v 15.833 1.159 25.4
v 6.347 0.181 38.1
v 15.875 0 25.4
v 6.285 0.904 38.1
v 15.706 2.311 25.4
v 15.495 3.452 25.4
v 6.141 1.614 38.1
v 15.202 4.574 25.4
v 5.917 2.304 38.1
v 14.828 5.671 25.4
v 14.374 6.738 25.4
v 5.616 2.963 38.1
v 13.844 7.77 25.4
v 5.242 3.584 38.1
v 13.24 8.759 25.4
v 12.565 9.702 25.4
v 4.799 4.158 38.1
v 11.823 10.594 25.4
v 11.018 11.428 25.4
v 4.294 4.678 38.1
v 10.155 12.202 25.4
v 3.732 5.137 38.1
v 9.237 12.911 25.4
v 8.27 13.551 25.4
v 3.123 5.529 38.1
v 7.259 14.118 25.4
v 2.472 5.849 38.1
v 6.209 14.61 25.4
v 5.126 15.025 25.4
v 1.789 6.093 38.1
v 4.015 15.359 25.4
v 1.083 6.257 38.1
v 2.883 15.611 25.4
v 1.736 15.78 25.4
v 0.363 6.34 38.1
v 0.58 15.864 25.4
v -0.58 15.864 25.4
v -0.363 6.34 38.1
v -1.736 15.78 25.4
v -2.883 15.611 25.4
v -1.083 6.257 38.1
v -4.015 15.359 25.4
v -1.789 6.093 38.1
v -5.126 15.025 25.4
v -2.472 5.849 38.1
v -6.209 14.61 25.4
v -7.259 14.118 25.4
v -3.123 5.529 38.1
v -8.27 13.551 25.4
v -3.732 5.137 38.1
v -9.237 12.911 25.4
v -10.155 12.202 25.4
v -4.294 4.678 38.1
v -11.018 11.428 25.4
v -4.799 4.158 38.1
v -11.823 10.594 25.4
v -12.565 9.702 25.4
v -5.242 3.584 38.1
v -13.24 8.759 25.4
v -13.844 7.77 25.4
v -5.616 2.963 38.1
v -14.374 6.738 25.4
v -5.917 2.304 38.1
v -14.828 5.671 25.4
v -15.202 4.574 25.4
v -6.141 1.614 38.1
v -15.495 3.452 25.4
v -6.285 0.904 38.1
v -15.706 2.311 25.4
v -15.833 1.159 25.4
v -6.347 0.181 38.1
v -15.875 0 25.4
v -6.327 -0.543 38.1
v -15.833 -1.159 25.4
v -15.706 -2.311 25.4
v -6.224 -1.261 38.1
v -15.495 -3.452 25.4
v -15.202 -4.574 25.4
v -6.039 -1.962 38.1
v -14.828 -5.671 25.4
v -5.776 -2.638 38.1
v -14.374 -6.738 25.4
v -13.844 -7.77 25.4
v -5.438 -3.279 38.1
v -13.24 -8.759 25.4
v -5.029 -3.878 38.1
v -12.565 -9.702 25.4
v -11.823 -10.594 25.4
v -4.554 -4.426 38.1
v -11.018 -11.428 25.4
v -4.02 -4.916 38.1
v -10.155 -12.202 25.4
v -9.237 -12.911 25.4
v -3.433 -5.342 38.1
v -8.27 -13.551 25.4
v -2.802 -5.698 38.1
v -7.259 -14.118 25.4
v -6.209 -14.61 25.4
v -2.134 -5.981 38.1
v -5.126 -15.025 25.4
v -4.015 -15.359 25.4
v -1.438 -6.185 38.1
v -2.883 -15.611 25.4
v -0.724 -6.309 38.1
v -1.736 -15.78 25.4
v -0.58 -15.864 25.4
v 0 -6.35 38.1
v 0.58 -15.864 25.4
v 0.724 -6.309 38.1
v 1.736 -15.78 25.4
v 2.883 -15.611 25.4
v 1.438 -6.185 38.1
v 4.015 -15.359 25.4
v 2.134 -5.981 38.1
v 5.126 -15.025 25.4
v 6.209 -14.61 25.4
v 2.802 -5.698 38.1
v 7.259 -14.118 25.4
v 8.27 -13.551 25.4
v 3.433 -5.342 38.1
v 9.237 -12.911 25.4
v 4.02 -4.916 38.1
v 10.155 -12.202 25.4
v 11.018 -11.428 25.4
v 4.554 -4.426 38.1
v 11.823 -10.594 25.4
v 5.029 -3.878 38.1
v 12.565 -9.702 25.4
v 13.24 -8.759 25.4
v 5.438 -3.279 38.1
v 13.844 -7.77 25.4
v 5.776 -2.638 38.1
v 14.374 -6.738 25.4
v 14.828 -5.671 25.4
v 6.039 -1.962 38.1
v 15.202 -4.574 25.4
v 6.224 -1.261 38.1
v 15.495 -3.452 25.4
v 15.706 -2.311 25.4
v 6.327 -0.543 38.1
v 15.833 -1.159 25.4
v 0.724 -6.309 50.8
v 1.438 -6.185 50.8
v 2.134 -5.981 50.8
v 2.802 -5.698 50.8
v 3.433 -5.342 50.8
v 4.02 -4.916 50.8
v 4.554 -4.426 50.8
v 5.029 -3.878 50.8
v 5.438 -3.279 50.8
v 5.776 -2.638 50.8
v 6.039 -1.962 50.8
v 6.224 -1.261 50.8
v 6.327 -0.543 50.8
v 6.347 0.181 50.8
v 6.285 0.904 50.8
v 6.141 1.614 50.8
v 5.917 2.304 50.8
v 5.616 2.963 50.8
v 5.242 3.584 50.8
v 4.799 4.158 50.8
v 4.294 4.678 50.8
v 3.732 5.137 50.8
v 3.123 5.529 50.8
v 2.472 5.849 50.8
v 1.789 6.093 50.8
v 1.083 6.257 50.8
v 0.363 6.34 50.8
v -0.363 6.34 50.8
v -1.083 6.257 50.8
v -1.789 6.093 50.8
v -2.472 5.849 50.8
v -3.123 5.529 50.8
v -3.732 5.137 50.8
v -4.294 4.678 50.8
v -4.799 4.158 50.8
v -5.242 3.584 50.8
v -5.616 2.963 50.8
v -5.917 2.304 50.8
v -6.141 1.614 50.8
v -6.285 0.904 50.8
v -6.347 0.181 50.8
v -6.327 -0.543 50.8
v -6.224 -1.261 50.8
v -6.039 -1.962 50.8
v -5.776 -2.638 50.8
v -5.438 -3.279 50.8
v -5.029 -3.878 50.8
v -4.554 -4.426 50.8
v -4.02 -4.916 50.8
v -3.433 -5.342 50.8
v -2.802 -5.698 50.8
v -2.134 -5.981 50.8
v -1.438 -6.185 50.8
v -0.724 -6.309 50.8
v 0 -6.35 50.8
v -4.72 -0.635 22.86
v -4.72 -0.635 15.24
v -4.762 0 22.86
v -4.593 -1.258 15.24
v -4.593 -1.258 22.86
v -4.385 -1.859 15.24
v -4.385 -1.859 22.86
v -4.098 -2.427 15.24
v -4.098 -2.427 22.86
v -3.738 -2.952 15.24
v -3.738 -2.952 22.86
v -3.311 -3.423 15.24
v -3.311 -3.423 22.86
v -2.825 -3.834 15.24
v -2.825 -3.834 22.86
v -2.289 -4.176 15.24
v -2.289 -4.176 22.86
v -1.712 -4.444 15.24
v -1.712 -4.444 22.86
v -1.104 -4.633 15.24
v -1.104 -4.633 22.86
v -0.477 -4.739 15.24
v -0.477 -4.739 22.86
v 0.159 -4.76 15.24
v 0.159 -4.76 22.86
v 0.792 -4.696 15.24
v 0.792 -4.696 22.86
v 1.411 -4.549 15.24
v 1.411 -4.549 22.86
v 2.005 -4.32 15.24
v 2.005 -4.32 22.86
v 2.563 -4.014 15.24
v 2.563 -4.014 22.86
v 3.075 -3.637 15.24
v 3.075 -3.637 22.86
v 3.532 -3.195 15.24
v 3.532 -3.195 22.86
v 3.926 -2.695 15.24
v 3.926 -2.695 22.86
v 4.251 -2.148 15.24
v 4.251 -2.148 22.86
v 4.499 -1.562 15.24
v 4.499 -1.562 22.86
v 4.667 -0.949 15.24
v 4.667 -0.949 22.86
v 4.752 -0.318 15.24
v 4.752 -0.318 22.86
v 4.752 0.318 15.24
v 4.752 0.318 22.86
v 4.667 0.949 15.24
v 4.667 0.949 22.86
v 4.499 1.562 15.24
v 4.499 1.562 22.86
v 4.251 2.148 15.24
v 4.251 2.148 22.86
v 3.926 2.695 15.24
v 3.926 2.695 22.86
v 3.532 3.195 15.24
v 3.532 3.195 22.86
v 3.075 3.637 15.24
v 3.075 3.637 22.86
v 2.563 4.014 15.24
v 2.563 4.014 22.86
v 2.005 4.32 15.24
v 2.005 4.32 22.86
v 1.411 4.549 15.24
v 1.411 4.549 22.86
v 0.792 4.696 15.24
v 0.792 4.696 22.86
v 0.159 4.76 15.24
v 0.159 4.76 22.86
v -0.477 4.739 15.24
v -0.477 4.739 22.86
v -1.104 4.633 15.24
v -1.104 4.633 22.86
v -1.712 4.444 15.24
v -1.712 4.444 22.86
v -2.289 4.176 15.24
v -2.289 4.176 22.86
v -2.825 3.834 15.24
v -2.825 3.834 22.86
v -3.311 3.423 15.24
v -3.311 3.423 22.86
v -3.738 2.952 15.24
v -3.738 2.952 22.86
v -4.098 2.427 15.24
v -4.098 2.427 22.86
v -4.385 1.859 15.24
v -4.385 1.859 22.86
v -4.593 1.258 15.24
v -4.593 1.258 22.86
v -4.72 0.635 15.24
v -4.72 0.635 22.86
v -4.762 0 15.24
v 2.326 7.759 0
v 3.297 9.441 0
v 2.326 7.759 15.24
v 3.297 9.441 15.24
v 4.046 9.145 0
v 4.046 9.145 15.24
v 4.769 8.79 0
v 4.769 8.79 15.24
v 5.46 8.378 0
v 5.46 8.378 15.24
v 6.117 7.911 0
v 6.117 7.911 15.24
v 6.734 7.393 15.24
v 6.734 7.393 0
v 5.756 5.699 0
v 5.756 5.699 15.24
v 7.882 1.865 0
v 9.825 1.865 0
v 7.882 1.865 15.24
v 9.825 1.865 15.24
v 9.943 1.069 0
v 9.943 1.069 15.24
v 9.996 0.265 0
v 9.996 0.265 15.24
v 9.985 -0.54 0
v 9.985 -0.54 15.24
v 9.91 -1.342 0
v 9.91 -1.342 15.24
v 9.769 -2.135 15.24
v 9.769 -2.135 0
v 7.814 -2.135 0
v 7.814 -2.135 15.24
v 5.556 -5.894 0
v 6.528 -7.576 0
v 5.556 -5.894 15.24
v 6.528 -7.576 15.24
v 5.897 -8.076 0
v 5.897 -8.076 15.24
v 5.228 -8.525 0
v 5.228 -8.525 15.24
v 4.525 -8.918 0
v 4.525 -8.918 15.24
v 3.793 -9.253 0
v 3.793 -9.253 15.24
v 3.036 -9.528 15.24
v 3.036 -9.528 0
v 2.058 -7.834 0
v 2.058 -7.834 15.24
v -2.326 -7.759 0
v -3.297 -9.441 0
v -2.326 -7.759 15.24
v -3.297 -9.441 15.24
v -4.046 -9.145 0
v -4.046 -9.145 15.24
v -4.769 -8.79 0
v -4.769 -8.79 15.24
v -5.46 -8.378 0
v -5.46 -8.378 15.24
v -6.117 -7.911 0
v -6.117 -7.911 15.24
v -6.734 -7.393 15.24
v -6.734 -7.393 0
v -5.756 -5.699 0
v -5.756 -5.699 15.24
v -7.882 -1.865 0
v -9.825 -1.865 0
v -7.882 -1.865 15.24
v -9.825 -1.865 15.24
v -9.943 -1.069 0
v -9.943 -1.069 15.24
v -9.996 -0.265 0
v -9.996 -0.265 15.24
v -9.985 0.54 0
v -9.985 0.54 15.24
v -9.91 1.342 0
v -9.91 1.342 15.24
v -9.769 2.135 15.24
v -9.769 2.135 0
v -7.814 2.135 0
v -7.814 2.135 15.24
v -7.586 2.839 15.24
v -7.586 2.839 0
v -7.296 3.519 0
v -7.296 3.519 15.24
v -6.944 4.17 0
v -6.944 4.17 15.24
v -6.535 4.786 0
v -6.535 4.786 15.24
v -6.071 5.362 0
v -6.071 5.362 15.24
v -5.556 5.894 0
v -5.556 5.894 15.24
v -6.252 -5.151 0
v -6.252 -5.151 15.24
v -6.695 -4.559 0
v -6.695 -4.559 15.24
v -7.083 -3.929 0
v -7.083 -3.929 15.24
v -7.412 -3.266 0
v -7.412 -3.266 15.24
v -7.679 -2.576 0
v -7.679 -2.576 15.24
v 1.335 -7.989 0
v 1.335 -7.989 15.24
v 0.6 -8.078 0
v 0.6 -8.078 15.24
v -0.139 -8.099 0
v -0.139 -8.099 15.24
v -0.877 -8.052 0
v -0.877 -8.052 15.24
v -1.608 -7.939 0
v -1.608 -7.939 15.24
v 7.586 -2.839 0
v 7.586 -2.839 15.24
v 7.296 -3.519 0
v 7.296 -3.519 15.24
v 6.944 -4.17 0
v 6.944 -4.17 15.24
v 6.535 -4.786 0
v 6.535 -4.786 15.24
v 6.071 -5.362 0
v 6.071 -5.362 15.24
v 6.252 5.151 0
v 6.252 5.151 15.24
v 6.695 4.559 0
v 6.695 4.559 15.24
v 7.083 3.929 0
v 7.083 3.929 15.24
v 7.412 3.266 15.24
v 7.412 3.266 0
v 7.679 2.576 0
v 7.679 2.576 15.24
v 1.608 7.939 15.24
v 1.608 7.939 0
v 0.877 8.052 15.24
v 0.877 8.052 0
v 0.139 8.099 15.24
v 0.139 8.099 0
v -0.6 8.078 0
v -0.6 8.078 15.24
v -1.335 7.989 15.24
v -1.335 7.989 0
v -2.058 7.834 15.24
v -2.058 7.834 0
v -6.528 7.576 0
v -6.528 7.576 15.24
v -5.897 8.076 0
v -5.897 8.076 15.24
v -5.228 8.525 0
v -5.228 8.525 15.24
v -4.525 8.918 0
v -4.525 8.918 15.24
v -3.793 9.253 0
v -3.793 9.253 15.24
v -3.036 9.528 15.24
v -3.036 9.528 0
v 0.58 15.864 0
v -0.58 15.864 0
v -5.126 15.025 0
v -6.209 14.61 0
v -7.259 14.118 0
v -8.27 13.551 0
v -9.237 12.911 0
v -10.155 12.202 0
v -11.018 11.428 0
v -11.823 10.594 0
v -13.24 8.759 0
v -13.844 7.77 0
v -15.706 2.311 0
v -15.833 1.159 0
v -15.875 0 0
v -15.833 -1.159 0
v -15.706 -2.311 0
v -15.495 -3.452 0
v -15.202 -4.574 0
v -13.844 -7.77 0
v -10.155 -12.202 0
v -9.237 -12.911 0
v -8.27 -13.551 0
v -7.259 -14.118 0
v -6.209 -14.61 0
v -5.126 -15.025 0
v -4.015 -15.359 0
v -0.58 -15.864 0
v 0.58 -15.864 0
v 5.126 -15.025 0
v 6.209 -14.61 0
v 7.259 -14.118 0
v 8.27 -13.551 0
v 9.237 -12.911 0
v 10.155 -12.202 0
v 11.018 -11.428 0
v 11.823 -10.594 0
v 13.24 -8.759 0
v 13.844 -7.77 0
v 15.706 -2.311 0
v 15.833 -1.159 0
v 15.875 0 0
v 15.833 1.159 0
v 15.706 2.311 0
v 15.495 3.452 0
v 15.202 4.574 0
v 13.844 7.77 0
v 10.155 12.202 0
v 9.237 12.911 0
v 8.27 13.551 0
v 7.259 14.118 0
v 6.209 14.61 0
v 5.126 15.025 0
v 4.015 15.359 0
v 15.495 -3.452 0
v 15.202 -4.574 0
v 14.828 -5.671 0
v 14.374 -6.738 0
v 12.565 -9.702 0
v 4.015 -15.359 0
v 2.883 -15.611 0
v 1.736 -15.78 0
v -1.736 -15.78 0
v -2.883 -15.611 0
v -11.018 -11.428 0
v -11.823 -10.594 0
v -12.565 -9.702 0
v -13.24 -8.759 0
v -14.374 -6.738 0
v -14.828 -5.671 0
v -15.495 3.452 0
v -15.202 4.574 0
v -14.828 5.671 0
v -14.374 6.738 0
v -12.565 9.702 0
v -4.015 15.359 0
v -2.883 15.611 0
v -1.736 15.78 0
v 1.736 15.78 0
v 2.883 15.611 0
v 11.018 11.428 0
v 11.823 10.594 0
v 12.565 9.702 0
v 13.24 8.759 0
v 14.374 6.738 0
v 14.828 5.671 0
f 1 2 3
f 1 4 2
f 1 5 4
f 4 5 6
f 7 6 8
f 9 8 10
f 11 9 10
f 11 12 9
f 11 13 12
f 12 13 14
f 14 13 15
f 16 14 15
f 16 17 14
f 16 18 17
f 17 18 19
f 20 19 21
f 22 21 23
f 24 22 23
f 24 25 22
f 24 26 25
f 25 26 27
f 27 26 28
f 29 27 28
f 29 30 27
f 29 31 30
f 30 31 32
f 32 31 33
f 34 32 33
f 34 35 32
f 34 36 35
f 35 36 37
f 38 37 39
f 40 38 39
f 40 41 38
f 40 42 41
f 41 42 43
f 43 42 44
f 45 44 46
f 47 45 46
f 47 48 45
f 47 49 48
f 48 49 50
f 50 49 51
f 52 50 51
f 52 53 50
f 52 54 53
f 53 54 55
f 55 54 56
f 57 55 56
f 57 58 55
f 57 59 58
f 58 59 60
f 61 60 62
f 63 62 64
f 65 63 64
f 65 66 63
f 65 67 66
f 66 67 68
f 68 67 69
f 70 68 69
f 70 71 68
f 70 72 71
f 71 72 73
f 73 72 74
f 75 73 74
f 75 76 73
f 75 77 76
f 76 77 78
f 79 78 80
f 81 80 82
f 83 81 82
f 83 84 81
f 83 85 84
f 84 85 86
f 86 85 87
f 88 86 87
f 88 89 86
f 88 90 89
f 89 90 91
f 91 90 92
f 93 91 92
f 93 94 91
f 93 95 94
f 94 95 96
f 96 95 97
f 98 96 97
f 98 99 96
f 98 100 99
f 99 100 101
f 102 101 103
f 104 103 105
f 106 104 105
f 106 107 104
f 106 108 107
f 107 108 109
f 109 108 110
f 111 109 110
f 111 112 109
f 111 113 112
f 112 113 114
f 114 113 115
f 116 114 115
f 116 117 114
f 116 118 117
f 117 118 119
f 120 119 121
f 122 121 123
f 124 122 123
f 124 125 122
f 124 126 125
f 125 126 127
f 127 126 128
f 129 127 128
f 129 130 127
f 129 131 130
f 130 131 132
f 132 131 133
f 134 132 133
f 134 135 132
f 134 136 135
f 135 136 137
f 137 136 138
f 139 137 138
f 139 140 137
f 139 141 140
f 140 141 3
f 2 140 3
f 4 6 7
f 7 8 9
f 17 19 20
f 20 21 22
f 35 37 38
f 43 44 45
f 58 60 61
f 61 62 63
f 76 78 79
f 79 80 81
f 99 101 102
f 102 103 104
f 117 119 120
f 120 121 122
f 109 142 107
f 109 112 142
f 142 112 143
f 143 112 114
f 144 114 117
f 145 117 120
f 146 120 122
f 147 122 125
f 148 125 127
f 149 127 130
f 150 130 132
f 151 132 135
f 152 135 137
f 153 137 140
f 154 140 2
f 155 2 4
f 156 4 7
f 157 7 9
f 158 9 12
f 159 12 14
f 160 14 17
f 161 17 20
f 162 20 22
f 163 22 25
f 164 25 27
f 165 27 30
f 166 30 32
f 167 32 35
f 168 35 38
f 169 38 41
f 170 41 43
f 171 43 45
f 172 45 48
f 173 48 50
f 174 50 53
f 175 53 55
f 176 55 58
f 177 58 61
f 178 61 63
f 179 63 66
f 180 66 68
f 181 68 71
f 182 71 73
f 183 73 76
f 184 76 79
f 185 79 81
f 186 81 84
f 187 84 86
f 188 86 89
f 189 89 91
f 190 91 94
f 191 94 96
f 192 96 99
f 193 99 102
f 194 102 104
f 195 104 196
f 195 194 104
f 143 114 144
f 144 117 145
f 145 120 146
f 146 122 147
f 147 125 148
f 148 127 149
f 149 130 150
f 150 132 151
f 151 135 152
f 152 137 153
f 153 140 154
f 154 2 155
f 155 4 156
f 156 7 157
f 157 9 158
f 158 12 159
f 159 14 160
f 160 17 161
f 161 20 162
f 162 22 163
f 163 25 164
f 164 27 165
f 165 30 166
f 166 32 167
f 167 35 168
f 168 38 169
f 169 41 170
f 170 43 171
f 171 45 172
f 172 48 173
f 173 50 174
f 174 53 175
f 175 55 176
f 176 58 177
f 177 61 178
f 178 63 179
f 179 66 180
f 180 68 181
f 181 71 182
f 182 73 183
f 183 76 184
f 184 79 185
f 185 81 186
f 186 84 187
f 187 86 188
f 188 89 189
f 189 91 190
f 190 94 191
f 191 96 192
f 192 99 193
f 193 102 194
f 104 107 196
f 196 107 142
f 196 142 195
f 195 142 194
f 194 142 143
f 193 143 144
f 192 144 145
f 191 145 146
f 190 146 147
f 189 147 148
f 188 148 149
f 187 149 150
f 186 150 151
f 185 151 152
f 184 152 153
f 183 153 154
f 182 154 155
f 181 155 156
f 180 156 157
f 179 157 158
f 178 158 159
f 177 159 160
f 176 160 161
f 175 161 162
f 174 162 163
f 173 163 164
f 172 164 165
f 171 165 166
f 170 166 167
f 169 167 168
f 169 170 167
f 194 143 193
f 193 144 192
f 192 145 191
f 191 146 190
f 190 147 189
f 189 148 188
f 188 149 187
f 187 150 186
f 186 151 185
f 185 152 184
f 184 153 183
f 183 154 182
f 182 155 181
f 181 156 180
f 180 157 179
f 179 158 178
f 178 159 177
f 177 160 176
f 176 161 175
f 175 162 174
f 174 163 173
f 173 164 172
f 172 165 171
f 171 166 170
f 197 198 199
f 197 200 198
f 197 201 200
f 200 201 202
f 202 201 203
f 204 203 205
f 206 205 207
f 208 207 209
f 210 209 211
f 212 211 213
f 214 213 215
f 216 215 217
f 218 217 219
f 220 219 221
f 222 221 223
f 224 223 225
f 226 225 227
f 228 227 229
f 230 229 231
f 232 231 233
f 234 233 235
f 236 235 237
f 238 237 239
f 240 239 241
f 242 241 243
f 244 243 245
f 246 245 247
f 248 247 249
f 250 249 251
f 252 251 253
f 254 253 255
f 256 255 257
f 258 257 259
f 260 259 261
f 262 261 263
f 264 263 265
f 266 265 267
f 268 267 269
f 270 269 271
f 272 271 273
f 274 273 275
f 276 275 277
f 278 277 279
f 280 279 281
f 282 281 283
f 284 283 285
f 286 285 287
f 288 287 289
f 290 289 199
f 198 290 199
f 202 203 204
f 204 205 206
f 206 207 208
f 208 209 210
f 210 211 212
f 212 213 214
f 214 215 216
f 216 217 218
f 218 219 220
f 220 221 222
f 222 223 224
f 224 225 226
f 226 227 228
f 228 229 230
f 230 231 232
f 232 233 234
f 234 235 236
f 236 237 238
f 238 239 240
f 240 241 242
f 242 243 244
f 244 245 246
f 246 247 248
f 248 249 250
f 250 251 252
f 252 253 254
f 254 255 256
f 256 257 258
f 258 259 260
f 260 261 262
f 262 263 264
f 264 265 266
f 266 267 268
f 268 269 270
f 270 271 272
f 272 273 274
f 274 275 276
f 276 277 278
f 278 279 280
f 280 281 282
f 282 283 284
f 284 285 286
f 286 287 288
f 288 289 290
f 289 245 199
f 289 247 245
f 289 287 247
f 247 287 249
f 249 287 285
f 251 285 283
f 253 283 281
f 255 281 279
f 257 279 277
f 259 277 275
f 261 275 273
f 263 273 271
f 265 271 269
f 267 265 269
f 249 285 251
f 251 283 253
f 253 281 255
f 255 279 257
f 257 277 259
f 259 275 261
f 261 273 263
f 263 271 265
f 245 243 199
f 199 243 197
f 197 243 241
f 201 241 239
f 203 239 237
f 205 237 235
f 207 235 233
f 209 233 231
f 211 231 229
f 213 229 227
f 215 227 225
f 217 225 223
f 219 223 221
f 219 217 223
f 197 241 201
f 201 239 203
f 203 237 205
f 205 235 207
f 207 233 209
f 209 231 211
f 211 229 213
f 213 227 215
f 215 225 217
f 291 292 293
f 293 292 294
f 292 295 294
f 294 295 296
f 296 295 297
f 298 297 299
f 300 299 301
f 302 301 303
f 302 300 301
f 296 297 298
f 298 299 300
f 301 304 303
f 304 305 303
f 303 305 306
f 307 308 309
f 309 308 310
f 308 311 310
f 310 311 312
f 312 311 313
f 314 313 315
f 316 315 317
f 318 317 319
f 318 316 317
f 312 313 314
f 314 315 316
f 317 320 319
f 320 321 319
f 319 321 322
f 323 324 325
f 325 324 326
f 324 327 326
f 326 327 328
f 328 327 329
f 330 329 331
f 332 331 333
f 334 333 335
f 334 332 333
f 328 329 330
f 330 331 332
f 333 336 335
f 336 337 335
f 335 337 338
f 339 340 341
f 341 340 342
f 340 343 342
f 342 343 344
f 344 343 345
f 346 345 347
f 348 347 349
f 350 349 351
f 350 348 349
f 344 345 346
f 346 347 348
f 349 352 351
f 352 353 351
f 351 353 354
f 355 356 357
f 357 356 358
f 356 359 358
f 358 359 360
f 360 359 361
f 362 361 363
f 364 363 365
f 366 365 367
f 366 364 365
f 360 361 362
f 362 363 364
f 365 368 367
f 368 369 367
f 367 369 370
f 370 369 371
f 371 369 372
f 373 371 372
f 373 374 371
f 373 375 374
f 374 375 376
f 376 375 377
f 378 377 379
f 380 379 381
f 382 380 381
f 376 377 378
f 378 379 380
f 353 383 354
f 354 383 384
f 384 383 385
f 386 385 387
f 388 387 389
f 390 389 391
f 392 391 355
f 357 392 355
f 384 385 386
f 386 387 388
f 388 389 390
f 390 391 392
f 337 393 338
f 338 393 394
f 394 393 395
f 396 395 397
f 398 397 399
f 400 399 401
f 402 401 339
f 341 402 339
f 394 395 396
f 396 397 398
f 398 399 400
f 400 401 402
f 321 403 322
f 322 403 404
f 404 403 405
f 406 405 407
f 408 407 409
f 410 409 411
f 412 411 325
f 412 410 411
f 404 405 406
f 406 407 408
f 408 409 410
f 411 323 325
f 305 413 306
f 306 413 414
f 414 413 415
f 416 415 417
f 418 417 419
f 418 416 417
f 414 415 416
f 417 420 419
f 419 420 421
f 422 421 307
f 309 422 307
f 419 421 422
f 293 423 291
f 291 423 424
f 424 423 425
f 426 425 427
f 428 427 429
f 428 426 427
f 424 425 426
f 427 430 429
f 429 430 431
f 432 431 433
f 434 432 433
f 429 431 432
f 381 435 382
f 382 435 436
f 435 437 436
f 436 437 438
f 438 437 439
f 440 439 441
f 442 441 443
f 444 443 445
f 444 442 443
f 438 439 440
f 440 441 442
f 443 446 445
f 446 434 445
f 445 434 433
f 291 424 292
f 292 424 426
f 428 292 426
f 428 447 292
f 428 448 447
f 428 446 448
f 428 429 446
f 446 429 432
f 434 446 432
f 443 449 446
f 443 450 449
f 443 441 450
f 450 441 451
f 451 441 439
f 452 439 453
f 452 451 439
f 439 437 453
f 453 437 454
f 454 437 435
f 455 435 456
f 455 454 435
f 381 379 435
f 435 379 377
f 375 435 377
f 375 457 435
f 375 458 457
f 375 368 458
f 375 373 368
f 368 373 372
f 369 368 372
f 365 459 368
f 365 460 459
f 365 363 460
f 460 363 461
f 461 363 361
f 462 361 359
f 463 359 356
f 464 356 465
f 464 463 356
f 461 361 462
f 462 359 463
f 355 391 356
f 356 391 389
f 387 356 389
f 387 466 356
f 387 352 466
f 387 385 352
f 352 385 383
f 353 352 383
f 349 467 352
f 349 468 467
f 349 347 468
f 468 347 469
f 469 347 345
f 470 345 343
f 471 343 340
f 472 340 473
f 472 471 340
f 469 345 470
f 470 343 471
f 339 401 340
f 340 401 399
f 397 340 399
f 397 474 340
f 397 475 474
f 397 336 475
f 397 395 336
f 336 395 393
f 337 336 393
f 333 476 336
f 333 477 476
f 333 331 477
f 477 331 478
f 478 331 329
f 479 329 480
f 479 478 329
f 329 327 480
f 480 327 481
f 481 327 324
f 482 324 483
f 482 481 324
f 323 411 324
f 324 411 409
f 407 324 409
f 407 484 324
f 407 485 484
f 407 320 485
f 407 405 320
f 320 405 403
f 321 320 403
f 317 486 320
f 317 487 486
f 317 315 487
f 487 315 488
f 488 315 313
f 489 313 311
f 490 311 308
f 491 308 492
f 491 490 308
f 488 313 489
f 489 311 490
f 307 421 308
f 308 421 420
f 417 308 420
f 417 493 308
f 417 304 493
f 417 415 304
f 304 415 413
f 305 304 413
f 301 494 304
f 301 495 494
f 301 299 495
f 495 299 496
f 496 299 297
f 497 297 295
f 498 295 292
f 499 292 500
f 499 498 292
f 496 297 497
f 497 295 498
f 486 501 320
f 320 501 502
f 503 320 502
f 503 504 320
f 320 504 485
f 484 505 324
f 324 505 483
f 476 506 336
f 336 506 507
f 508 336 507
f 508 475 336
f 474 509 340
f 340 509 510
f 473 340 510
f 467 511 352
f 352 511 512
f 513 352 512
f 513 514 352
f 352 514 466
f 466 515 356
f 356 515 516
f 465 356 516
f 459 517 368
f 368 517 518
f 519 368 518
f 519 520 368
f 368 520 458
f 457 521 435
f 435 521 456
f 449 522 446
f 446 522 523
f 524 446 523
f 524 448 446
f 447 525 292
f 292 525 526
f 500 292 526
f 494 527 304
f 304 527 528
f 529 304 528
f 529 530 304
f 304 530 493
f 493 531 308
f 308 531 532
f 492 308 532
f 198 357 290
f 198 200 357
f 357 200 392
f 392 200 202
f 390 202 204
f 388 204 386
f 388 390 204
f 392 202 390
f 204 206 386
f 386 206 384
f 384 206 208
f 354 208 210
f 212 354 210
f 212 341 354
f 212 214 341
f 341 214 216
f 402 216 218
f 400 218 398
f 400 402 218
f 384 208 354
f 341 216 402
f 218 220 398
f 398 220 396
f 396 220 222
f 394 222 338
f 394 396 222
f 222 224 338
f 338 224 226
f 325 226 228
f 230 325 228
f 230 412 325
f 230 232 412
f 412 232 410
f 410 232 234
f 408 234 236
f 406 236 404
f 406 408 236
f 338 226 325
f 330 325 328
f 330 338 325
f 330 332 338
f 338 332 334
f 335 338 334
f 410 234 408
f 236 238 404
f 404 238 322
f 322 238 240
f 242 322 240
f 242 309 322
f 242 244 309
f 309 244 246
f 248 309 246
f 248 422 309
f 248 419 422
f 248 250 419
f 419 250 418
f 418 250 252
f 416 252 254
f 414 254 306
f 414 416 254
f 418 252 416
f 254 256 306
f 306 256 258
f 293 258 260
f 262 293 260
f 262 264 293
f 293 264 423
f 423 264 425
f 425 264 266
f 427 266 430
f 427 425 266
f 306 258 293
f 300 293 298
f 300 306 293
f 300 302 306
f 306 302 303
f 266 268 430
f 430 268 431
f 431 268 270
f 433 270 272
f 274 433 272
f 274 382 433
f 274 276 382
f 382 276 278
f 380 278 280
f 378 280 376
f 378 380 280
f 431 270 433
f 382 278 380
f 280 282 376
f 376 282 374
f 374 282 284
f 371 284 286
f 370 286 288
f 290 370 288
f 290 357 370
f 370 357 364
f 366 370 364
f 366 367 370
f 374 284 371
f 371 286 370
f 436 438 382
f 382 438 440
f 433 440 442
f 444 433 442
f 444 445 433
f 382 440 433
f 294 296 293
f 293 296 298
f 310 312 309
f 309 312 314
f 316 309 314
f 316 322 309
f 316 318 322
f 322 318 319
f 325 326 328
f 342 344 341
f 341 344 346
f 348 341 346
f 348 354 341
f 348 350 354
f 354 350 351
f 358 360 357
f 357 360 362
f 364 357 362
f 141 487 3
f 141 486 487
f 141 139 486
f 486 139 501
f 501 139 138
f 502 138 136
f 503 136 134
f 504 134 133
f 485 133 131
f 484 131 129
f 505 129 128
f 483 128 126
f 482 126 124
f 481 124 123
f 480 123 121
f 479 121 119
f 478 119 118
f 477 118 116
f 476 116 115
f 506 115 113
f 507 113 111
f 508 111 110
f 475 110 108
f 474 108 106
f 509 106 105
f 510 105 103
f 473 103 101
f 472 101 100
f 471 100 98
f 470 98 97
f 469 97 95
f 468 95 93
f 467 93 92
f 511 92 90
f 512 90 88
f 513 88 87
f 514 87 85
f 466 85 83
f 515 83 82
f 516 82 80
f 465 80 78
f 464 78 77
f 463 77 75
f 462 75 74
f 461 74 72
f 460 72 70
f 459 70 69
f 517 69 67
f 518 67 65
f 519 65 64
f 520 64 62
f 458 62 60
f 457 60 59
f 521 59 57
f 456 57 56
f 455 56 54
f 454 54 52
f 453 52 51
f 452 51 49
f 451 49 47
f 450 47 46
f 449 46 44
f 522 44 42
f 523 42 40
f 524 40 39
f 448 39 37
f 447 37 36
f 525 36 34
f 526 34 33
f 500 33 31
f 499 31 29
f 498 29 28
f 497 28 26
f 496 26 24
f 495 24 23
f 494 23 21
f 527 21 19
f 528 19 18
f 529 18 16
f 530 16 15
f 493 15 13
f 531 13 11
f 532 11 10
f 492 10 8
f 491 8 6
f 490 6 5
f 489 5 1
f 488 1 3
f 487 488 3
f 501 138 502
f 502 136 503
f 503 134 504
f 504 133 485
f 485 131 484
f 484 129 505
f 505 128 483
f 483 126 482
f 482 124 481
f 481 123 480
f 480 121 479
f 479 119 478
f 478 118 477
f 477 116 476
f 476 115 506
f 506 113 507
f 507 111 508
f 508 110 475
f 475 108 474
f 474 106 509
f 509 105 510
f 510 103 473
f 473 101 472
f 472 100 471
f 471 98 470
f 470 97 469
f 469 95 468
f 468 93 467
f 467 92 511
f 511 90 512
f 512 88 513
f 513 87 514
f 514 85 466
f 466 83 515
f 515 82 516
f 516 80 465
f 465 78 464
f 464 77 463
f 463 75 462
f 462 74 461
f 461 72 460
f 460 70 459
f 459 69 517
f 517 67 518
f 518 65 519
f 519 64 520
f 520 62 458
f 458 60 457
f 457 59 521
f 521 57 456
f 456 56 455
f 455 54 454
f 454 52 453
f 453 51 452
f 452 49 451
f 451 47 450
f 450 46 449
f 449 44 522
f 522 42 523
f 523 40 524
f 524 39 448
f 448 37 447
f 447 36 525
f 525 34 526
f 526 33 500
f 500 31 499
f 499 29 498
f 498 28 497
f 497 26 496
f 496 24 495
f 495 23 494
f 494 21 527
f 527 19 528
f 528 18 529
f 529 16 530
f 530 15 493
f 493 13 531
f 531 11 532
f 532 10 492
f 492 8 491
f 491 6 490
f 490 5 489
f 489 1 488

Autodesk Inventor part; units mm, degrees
ref_plane "YZ Plane" through (0, 0, 0) normal (1, 0, 0) x (0, 1, 0)
ref_plane "XZ Plane" through (0, 0, 0) normal (0, 1, 0) x (-1, 0, 0)
ref_plane "XY Plane" through (0, 0, 0) normal (0, 0, 1) x (1, 0, 0)
sketch "Sketch1" plane through (0, 0, 0) normal (0, 0, 1) x (1, 0, 0)
  circle A0 centre (0, 0) radius 15.875
  arc A1 (-3.0359, 9.528) -> (-6.5275, 7.5757) centre (0, 0) ccw
  line L0 (0, 0) -> (-5, 8.6603) construction
  line L1 (0, 0) -> (-10.16, 0) construction
  line L2 (-2.058, 7.8342) -> (-3.0359, 9.528)
  line L3 (-5.5564, 5.8937) -> (-6.5275, 7.5757)
  arc A2 (-2.058, 7.8342) -> (-5.5564, 5.8937) centre (0, 0) ccw
  circle A3 centre (0, 0) radius 8.1
  arc A4 (6.7336, 7.3932) -> (3.297, 9.4409) centre (0, 0) ccw
  line L4 (5.7556, 5.6994) -> (6.7336, 7.3932)
  line L5 (2.3259, 7.7589) -> (3.297, 9.4409)
  arc A5 (9.7695, -2.1348) -> (9.8245, 1.8652) centre (0, 0) ccw
  line L6 (7.8136, -2.1348) -> (9.7695, -2.1348)
  line L7 (7.8823, 1.8652) -> (9.8245, 1.8652)
  arc A6 (3.0359, -9.528) -> (6.5275, -7.5757) centre (0, 0) ccw
  line L8 (2.058, -7.8342) -> (3.0359, -9.528)
  line L9 (5.5564, -5.8937) -> (6.5275, -7.5757)
  arc A7 (-6.7336, -7.3932) -> (-3.297, -9.4409) centre (0, 0) ccw
  line L10 (-5.7556, -5.6994) -> (-6.7336, -7.3932)
  line L11 (-2.3259, -7.7589) -> (-3.297, -9.4409)
  arc A8 (-9.7695, 2.1348) -> (-9.8245, -1.8652) centre (0, 0) ccw
  line L12 (-7.8136, 2.1348) -> (-9.7695, 2.1348)
  line L13 (-7.8823, -1.8652) -> (-9.8245, -1.8652)
  point P0 (5, 8.6603)
  point P1 (10, 0)
  point P2 (5, -8.6603)
  point P3 (-5, -8.6603)
  point P4 (-10, 0)
  dimension "d5" = 16.2
  dimension "d0" = 31.75
  dimension "d2" = 60
  dimension "d3" = 4
  dimension "d4" = 20
  dimension "d8" = 360
extrude "Extrusion1" add sketch "Sketch1" along normal blind 25.4 contours A0 | L2 A2 L3 A1 | A3 A2 | L5 A4 L4 A3 | A3 L13 A8 L12 | L7 A5 L6 A3 | A3 L11 A7 L10 | A3 L9 A6 L8
extrude "Extrusion2" cut sketch "Sketch1" along normal blind 15.24 contours A3 A2
extrude "Extrusion3" cut sketch "Sketch1" along normal blind 15.24 contours L2 A2 L3 A1
pattern_circular "Circular Pattern1" count 6 over 360 about axis through (0, 0, 0) along (0, 0, 1) of "Extrusion3"
sketch "Sketch2" plane through (0, 0, 15.24) normal (0, 0, -1) x (-1, 0, 0)
  arc A0 (9.8245, -1.8652) -> (9.7695, 2.1348) centre (0, 0) ccw projected
  circle A1 centre (0, 0) radius 4.7625
  dimension "d19" = 9.525
extrude "Extrusion4" cut sketch "Sketch2" against normal blind 7.62
sketch "Sketch4" plane through (0, 0, 0) normal (1, 0, 0) x (0, 1, 0)
  line L0 (8.1, 0) -> (8.1, 15.24) projected
  line L1 (8.1, 15.24) -> (4.7625, 15.24) projected
  line L2 (4.7625, 15.24) -> (4.7625, 22.86) projected
  line L3 (4.7625, 22.86) -> (-4.7625, 22.86) projected
  line L4 (-4.7625, 22.86) -> (-4.7625, 15.24) projected
  line L5 (-4.7625, 15.24) -> (-8.1, 15.24) projected
  line L6 (-8.1, 15.24) -> (-8.1, 0) projected
  line L7 (-8.1, 0) -> (-15.875, 0) projected
  line L8 (-15.875, 0) -> (-15.875, 25.4) projected
  line L9 (-15.875, 25.4) -> (15.875, 25.4) projected
  line L10 (15.875, 25.4) -> (15.875, 0) projected
  line L11 (15.875, 0) -> (8.1, 0) projected
  line L12 (0, 25.4) -> (0, 50.8)
  line L13 (0, 50.8) -> (-6.35, 50.8)
  line L14 (-6.35, 50.8) -> (-6.35, 38.1)
  line L15 (-6.35, 38.1) -> (-15.875, 25.4)
  point P0 (0, 0)
  dimension "d22" = 25.4
  dimension "d23" = 6.35
  dimension "d24" = 12.7
revolve "Revolution1" add sketch "Sketch4" angle 360 about axis through (0, 0, 25.4) along (0, 0, 1) contours L9 L15 L14 L13 L12
sketch "Sketch5" plane through (0, 0, 0) normal (0, 1, 0) x (-1, 0, 0)
  line L0 (10, 0) -> (10, 15.24) projected
  line L1 (10, 15.24) -> (4.7625, 15.24) projected
  line L2 (4.7625, 15.24) -> (4.7625, 22.86) projected
  line L3 (4.7625, 22.86) -> (-4.7625, 22.86) projected
  line L4 (-4.7625, 22.86) -> (-4.7625, 15.24) projected
  line L5 (-4.7625, 15.24) -> (-10, 15.24) projected
  line L6 (-10, 15.24) -> (-10, 0) projected
  line L7 (-10, 0) -> (-15.875, 0) projected
  line L8 (-15.875, 0) -> (-15.875, 25.4) projected
  line L9 (-15.875, 25.4) -> (-6.35, 38.1) projected
  line L10 (-6.35, 38.1) -> (-6.35, 50.8) projected
  line L11 (-6.35, 50.8) -> (6.35, 50.8) projected
  line L12 (6.35, 50.8) -> (6.35, 38.1) projected
  line L13 (6.35, 38.1) -> (15.875, 25.4) projected
  line L14 (15.875, 25.4) -> (15.875, 0) projected
  line L15 (15.875, 0) -> (10, 0) projected
  point P0 (0, 0)
  dimension "d26" = 25.4
  dimension "d27" = 12.7
properties part number "motor connector"
